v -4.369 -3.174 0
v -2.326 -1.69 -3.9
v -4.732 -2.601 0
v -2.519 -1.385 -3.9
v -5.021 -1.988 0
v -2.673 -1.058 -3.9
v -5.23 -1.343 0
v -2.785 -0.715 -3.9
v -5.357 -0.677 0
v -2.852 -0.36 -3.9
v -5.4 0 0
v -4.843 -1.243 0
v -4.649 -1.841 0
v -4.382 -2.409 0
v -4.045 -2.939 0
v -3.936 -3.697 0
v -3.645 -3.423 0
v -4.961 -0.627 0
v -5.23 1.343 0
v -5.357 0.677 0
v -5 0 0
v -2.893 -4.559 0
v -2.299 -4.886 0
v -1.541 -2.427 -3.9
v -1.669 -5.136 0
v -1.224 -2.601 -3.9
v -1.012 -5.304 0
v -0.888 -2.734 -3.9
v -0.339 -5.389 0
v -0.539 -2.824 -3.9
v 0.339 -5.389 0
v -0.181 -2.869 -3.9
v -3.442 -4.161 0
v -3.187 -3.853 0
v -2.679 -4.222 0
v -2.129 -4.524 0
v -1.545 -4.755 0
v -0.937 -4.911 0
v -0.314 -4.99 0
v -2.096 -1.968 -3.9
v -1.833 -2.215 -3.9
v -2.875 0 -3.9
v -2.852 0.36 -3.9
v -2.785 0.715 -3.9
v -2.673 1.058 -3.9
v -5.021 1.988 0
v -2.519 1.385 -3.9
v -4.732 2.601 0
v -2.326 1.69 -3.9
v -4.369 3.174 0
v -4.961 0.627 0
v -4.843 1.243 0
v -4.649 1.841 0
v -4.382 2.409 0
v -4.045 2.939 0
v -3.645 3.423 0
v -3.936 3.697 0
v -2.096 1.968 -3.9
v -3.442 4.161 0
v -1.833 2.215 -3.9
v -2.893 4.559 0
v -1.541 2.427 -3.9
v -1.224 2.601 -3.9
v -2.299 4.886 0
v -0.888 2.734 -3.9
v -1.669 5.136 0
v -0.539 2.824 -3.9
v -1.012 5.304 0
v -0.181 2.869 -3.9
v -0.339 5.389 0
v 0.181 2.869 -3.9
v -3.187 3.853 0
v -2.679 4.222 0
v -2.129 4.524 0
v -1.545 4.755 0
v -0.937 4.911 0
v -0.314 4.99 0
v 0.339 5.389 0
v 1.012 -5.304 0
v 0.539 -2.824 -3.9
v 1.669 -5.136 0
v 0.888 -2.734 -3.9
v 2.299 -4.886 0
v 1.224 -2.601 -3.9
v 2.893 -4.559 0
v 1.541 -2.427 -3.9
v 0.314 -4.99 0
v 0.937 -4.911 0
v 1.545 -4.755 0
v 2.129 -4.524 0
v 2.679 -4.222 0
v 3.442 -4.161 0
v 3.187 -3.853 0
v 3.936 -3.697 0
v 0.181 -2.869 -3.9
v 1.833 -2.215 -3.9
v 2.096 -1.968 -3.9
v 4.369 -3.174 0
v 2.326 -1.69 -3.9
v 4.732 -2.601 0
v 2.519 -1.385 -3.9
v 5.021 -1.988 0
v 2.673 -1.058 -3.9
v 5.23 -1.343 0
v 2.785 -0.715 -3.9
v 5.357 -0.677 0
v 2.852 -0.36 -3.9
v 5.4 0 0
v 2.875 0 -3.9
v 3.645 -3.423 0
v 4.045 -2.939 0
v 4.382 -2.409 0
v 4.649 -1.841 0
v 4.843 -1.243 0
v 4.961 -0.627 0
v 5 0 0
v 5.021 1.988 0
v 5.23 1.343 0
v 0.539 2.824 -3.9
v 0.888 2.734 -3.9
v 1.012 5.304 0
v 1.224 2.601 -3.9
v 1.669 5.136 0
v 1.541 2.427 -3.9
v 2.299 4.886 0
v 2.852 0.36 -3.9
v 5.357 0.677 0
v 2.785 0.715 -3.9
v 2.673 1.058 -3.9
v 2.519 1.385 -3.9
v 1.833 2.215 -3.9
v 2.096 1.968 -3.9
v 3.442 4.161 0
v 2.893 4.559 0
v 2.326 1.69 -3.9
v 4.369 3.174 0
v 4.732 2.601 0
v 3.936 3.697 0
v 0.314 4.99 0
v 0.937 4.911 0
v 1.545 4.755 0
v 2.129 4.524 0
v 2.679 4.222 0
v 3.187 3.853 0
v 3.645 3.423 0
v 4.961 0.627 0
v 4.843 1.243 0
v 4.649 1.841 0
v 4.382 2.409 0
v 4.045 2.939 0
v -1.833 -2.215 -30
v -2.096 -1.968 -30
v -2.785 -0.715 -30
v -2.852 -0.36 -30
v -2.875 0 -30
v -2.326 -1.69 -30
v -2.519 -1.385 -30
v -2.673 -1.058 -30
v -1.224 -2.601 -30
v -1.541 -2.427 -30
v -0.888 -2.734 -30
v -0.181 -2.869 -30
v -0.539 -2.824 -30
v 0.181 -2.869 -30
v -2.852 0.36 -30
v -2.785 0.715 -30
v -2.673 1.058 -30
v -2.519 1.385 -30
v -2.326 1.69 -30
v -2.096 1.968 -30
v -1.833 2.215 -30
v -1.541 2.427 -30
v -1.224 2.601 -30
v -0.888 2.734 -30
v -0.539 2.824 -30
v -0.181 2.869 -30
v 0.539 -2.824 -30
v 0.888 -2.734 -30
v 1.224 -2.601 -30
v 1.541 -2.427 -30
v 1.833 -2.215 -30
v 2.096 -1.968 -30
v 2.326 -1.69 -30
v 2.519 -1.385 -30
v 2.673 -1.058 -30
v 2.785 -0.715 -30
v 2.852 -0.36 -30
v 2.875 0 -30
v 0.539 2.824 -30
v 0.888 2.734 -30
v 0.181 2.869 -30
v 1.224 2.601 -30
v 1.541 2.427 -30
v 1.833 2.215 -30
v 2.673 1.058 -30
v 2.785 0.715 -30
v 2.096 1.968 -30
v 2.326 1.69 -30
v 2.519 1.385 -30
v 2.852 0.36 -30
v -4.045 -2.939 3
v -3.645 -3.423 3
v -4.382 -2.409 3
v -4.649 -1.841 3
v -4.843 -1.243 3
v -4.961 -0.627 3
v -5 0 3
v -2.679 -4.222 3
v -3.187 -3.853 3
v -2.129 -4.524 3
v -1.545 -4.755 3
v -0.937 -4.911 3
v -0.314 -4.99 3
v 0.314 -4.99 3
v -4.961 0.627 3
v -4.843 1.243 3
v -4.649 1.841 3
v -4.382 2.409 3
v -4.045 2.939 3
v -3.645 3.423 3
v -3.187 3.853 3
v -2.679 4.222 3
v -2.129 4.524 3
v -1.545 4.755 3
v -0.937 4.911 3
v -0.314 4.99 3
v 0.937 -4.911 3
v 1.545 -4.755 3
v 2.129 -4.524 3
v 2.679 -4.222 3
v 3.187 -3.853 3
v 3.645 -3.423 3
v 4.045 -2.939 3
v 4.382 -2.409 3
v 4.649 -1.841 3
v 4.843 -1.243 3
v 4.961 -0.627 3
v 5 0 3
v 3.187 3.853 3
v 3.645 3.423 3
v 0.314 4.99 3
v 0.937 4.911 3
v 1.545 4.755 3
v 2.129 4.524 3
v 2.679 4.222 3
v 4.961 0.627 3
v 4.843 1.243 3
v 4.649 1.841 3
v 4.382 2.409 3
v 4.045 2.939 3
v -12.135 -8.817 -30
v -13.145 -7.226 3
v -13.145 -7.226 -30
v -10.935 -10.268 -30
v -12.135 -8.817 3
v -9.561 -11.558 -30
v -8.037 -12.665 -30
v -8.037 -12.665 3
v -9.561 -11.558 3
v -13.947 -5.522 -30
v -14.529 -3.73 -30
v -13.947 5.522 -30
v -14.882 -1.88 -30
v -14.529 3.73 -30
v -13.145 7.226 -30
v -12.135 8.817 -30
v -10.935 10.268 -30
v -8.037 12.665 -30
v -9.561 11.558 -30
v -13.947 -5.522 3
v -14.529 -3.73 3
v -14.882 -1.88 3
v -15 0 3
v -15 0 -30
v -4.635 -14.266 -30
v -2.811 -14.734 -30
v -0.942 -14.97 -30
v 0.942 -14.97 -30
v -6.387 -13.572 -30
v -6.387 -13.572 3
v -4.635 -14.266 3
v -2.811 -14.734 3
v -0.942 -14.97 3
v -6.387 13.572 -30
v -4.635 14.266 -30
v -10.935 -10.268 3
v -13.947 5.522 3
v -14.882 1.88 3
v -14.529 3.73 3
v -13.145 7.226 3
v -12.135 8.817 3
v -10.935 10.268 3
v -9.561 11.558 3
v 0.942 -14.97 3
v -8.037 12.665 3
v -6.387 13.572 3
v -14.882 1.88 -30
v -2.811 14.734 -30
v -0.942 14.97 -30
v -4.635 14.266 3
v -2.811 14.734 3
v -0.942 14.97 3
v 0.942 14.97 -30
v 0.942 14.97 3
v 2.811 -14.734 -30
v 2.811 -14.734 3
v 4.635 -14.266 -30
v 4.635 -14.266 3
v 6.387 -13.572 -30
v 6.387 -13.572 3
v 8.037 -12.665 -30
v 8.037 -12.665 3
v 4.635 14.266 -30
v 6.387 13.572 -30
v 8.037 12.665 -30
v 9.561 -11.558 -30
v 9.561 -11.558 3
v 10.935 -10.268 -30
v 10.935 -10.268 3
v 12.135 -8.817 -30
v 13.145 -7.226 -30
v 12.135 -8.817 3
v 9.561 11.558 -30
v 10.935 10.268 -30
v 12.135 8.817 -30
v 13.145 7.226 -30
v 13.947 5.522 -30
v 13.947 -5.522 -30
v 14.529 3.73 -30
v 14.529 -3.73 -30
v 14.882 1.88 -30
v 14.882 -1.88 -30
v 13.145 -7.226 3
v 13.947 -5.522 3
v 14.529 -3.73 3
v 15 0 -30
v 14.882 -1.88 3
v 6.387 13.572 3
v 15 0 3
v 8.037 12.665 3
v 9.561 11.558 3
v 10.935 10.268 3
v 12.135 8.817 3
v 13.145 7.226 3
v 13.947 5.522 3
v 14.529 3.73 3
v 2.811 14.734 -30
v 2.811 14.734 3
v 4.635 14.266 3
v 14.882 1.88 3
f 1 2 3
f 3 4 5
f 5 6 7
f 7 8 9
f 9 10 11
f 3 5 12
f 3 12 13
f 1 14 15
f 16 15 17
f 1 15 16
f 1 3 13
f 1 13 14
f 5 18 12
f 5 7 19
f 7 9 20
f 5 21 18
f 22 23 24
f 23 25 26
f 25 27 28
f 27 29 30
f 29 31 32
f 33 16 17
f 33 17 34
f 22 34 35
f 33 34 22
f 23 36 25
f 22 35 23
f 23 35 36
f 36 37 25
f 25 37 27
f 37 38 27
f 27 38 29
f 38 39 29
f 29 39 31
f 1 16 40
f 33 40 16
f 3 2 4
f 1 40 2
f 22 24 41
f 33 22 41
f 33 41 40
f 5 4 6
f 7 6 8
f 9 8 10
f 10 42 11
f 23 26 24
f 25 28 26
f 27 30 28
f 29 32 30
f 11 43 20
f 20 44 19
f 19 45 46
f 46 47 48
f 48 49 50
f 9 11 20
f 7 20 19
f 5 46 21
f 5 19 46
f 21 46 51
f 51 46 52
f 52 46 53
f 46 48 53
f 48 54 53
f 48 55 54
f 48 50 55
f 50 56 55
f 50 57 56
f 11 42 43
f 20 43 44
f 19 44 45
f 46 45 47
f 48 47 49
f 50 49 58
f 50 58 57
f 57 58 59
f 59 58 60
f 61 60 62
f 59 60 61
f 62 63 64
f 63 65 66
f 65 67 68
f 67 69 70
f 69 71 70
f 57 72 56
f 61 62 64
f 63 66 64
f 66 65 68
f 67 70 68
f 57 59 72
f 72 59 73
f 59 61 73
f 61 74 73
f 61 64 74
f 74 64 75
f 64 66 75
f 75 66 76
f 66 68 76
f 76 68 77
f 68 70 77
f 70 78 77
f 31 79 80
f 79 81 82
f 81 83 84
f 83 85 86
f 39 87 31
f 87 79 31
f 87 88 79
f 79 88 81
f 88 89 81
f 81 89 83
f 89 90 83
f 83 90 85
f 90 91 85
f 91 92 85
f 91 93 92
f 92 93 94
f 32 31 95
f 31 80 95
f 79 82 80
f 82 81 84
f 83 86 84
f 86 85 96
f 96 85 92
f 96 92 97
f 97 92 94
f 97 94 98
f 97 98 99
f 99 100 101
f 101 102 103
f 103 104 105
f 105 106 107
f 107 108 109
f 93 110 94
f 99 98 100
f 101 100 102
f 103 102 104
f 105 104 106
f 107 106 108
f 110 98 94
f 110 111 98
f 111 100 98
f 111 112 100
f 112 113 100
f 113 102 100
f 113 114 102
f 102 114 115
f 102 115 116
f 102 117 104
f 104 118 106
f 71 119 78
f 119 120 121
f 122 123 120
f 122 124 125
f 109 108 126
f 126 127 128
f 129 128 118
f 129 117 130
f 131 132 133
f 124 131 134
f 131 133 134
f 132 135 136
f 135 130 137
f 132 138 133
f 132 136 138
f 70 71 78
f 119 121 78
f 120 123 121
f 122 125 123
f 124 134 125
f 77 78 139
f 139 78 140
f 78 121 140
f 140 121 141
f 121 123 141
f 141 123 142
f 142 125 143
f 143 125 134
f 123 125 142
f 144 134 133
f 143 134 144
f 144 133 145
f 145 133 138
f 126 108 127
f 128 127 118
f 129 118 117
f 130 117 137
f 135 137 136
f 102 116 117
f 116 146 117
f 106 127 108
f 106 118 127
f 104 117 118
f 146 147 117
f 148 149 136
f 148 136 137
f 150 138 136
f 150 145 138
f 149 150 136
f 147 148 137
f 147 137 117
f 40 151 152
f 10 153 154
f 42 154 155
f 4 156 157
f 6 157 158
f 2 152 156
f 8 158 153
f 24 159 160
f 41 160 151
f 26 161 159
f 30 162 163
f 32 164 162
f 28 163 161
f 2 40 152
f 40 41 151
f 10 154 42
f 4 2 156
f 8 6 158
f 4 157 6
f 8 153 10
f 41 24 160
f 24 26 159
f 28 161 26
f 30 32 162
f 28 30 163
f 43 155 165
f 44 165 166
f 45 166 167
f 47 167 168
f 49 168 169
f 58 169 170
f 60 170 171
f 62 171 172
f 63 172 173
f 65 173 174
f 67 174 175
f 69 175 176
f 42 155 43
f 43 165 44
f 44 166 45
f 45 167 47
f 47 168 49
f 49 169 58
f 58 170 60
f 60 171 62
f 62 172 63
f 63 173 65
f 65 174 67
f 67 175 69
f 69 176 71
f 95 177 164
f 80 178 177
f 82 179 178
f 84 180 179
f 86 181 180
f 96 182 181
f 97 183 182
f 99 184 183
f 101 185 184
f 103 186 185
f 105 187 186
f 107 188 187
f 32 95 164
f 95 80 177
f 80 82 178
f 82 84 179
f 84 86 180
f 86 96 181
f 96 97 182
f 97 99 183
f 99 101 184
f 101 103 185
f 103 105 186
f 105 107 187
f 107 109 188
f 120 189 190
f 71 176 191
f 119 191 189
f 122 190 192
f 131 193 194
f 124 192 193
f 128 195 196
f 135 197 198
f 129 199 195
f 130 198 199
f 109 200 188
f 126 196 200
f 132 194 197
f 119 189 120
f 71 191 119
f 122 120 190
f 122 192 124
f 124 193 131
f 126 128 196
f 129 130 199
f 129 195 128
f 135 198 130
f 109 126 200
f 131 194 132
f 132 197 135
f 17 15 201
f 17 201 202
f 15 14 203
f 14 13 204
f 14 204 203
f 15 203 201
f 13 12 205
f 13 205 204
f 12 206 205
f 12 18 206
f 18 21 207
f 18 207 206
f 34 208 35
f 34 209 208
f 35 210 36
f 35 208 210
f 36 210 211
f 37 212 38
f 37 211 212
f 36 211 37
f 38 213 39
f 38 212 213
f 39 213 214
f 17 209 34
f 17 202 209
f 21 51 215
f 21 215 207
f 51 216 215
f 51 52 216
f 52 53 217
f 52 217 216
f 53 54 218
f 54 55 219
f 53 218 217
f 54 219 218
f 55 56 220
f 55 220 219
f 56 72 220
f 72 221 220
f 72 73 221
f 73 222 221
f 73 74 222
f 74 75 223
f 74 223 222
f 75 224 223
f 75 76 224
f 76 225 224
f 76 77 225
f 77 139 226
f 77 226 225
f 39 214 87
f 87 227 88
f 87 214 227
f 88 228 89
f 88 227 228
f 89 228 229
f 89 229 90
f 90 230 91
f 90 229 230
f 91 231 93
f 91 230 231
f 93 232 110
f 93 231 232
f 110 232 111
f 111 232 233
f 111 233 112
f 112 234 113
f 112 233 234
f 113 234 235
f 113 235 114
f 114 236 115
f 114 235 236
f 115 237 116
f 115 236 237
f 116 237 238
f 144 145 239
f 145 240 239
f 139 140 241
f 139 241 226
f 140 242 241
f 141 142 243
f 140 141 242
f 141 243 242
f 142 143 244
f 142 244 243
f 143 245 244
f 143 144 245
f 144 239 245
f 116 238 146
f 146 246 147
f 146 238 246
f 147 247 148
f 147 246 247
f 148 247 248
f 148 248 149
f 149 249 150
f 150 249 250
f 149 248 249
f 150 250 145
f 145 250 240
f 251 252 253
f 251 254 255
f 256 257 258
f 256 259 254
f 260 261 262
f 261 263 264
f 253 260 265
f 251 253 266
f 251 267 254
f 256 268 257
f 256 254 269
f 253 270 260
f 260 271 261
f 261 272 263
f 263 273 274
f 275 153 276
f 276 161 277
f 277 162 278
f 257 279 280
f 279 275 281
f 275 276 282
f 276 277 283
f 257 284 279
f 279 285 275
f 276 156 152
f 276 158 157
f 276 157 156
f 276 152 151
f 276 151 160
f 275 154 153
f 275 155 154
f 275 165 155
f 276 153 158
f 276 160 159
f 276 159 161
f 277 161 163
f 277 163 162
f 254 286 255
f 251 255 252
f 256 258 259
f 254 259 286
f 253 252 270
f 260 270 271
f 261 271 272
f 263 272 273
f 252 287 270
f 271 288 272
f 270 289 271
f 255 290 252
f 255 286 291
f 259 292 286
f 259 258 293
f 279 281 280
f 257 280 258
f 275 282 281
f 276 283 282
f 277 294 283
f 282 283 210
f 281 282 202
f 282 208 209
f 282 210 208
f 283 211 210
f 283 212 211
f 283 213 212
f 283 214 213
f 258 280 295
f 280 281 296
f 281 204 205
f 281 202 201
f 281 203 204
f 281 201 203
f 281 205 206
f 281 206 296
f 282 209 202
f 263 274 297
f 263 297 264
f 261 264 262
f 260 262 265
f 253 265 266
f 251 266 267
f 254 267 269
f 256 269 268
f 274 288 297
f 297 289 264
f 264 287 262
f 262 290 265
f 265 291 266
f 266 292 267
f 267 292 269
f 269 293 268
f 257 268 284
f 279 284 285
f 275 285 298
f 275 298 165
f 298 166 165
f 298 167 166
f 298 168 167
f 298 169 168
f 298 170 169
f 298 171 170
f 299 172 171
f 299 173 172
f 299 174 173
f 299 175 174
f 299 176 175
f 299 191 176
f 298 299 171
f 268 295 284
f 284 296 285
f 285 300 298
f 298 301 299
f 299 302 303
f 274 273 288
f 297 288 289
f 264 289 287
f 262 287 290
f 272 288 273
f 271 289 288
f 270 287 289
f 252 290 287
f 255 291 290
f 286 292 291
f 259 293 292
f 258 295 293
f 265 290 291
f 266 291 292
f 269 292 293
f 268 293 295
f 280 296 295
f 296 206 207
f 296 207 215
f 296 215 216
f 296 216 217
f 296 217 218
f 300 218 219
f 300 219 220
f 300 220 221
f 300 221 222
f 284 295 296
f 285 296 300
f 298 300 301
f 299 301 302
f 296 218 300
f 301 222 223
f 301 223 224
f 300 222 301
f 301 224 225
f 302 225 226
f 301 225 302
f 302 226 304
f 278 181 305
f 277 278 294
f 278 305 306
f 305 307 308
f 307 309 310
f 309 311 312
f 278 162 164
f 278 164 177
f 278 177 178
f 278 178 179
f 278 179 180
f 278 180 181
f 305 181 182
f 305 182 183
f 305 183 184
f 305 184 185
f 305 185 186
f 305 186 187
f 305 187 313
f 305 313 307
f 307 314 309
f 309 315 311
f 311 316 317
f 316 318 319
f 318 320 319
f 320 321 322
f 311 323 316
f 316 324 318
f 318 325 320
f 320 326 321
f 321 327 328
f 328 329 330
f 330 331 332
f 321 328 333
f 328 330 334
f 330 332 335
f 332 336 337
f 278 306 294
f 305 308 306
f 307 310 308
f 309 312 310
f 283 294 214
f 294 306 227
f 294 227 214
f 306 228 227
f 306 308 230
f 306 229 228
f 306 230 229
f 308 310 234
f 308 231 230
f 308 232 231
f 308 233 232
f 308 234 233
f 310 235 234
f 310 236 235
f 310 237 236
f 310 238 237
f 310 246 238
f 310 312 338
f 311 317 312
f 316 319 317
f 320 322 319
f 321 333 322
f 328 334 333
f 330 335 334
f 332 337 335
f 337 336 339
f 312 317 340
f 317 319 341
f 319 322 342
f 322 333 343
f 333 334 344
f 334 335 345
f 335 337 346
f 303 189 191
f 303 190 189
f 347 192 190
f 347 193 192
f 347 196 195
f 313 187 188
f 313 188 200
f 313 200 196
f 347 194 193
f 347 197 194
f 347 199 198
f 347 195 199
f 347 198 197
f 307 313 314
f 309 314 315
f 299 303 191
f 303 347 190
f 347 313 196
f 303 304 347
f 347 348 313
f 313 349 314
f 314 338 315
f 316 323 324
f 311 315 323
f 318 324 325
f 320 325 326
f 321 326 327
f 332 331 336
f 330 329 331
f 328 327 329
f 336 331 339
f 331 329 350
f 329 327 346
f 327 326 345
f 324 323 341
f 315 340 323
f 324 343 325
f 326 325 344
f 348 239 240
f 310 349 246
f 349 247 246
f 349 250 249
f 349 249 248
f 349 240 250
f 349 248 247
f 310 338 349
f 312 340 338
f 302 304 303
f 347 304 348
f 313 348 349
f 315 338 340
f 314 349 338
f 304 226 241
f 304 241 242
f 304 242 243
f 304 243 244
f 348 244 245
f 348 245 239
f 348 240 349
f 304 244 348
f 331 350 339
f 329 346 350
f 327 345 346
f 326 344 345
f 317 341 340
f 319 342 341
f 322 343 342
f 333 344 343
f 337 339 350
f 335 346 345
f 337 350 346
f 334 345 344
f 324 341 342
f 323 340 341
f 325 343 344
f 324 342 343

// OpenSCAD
$fn = 50;

difference() {
	union() {
		translate(v = [0, 0, -30.0]) {
			cylinder(h = 33, r = 15.0);
		}
	}
	union() {
		translate(v = [0, 0, 0]) {
			rotate(a = [0, 0, 0]) {
				difference() {
					union() {
						translate(v = [0, 0, -33.0]) {
							cylinder(h = 33, r = 2.6);
						}
						translate(v = [0, 0, -3.9]) {
							cylinder(h = 3.9, r1 = 2.875, r2 = 5.4);
						}
						translate(v = [0, 0, -33.0]) {
							cylinder(h = 33, r = 2.875);
						}
						translate(v = [0, 0, -33.0]) {
							cylinder(h = 33, r = 2.6);
						}
					}
					union();
				}
			}
		}
		#cylinder(h = 3, r = 5.0);
	}
}
